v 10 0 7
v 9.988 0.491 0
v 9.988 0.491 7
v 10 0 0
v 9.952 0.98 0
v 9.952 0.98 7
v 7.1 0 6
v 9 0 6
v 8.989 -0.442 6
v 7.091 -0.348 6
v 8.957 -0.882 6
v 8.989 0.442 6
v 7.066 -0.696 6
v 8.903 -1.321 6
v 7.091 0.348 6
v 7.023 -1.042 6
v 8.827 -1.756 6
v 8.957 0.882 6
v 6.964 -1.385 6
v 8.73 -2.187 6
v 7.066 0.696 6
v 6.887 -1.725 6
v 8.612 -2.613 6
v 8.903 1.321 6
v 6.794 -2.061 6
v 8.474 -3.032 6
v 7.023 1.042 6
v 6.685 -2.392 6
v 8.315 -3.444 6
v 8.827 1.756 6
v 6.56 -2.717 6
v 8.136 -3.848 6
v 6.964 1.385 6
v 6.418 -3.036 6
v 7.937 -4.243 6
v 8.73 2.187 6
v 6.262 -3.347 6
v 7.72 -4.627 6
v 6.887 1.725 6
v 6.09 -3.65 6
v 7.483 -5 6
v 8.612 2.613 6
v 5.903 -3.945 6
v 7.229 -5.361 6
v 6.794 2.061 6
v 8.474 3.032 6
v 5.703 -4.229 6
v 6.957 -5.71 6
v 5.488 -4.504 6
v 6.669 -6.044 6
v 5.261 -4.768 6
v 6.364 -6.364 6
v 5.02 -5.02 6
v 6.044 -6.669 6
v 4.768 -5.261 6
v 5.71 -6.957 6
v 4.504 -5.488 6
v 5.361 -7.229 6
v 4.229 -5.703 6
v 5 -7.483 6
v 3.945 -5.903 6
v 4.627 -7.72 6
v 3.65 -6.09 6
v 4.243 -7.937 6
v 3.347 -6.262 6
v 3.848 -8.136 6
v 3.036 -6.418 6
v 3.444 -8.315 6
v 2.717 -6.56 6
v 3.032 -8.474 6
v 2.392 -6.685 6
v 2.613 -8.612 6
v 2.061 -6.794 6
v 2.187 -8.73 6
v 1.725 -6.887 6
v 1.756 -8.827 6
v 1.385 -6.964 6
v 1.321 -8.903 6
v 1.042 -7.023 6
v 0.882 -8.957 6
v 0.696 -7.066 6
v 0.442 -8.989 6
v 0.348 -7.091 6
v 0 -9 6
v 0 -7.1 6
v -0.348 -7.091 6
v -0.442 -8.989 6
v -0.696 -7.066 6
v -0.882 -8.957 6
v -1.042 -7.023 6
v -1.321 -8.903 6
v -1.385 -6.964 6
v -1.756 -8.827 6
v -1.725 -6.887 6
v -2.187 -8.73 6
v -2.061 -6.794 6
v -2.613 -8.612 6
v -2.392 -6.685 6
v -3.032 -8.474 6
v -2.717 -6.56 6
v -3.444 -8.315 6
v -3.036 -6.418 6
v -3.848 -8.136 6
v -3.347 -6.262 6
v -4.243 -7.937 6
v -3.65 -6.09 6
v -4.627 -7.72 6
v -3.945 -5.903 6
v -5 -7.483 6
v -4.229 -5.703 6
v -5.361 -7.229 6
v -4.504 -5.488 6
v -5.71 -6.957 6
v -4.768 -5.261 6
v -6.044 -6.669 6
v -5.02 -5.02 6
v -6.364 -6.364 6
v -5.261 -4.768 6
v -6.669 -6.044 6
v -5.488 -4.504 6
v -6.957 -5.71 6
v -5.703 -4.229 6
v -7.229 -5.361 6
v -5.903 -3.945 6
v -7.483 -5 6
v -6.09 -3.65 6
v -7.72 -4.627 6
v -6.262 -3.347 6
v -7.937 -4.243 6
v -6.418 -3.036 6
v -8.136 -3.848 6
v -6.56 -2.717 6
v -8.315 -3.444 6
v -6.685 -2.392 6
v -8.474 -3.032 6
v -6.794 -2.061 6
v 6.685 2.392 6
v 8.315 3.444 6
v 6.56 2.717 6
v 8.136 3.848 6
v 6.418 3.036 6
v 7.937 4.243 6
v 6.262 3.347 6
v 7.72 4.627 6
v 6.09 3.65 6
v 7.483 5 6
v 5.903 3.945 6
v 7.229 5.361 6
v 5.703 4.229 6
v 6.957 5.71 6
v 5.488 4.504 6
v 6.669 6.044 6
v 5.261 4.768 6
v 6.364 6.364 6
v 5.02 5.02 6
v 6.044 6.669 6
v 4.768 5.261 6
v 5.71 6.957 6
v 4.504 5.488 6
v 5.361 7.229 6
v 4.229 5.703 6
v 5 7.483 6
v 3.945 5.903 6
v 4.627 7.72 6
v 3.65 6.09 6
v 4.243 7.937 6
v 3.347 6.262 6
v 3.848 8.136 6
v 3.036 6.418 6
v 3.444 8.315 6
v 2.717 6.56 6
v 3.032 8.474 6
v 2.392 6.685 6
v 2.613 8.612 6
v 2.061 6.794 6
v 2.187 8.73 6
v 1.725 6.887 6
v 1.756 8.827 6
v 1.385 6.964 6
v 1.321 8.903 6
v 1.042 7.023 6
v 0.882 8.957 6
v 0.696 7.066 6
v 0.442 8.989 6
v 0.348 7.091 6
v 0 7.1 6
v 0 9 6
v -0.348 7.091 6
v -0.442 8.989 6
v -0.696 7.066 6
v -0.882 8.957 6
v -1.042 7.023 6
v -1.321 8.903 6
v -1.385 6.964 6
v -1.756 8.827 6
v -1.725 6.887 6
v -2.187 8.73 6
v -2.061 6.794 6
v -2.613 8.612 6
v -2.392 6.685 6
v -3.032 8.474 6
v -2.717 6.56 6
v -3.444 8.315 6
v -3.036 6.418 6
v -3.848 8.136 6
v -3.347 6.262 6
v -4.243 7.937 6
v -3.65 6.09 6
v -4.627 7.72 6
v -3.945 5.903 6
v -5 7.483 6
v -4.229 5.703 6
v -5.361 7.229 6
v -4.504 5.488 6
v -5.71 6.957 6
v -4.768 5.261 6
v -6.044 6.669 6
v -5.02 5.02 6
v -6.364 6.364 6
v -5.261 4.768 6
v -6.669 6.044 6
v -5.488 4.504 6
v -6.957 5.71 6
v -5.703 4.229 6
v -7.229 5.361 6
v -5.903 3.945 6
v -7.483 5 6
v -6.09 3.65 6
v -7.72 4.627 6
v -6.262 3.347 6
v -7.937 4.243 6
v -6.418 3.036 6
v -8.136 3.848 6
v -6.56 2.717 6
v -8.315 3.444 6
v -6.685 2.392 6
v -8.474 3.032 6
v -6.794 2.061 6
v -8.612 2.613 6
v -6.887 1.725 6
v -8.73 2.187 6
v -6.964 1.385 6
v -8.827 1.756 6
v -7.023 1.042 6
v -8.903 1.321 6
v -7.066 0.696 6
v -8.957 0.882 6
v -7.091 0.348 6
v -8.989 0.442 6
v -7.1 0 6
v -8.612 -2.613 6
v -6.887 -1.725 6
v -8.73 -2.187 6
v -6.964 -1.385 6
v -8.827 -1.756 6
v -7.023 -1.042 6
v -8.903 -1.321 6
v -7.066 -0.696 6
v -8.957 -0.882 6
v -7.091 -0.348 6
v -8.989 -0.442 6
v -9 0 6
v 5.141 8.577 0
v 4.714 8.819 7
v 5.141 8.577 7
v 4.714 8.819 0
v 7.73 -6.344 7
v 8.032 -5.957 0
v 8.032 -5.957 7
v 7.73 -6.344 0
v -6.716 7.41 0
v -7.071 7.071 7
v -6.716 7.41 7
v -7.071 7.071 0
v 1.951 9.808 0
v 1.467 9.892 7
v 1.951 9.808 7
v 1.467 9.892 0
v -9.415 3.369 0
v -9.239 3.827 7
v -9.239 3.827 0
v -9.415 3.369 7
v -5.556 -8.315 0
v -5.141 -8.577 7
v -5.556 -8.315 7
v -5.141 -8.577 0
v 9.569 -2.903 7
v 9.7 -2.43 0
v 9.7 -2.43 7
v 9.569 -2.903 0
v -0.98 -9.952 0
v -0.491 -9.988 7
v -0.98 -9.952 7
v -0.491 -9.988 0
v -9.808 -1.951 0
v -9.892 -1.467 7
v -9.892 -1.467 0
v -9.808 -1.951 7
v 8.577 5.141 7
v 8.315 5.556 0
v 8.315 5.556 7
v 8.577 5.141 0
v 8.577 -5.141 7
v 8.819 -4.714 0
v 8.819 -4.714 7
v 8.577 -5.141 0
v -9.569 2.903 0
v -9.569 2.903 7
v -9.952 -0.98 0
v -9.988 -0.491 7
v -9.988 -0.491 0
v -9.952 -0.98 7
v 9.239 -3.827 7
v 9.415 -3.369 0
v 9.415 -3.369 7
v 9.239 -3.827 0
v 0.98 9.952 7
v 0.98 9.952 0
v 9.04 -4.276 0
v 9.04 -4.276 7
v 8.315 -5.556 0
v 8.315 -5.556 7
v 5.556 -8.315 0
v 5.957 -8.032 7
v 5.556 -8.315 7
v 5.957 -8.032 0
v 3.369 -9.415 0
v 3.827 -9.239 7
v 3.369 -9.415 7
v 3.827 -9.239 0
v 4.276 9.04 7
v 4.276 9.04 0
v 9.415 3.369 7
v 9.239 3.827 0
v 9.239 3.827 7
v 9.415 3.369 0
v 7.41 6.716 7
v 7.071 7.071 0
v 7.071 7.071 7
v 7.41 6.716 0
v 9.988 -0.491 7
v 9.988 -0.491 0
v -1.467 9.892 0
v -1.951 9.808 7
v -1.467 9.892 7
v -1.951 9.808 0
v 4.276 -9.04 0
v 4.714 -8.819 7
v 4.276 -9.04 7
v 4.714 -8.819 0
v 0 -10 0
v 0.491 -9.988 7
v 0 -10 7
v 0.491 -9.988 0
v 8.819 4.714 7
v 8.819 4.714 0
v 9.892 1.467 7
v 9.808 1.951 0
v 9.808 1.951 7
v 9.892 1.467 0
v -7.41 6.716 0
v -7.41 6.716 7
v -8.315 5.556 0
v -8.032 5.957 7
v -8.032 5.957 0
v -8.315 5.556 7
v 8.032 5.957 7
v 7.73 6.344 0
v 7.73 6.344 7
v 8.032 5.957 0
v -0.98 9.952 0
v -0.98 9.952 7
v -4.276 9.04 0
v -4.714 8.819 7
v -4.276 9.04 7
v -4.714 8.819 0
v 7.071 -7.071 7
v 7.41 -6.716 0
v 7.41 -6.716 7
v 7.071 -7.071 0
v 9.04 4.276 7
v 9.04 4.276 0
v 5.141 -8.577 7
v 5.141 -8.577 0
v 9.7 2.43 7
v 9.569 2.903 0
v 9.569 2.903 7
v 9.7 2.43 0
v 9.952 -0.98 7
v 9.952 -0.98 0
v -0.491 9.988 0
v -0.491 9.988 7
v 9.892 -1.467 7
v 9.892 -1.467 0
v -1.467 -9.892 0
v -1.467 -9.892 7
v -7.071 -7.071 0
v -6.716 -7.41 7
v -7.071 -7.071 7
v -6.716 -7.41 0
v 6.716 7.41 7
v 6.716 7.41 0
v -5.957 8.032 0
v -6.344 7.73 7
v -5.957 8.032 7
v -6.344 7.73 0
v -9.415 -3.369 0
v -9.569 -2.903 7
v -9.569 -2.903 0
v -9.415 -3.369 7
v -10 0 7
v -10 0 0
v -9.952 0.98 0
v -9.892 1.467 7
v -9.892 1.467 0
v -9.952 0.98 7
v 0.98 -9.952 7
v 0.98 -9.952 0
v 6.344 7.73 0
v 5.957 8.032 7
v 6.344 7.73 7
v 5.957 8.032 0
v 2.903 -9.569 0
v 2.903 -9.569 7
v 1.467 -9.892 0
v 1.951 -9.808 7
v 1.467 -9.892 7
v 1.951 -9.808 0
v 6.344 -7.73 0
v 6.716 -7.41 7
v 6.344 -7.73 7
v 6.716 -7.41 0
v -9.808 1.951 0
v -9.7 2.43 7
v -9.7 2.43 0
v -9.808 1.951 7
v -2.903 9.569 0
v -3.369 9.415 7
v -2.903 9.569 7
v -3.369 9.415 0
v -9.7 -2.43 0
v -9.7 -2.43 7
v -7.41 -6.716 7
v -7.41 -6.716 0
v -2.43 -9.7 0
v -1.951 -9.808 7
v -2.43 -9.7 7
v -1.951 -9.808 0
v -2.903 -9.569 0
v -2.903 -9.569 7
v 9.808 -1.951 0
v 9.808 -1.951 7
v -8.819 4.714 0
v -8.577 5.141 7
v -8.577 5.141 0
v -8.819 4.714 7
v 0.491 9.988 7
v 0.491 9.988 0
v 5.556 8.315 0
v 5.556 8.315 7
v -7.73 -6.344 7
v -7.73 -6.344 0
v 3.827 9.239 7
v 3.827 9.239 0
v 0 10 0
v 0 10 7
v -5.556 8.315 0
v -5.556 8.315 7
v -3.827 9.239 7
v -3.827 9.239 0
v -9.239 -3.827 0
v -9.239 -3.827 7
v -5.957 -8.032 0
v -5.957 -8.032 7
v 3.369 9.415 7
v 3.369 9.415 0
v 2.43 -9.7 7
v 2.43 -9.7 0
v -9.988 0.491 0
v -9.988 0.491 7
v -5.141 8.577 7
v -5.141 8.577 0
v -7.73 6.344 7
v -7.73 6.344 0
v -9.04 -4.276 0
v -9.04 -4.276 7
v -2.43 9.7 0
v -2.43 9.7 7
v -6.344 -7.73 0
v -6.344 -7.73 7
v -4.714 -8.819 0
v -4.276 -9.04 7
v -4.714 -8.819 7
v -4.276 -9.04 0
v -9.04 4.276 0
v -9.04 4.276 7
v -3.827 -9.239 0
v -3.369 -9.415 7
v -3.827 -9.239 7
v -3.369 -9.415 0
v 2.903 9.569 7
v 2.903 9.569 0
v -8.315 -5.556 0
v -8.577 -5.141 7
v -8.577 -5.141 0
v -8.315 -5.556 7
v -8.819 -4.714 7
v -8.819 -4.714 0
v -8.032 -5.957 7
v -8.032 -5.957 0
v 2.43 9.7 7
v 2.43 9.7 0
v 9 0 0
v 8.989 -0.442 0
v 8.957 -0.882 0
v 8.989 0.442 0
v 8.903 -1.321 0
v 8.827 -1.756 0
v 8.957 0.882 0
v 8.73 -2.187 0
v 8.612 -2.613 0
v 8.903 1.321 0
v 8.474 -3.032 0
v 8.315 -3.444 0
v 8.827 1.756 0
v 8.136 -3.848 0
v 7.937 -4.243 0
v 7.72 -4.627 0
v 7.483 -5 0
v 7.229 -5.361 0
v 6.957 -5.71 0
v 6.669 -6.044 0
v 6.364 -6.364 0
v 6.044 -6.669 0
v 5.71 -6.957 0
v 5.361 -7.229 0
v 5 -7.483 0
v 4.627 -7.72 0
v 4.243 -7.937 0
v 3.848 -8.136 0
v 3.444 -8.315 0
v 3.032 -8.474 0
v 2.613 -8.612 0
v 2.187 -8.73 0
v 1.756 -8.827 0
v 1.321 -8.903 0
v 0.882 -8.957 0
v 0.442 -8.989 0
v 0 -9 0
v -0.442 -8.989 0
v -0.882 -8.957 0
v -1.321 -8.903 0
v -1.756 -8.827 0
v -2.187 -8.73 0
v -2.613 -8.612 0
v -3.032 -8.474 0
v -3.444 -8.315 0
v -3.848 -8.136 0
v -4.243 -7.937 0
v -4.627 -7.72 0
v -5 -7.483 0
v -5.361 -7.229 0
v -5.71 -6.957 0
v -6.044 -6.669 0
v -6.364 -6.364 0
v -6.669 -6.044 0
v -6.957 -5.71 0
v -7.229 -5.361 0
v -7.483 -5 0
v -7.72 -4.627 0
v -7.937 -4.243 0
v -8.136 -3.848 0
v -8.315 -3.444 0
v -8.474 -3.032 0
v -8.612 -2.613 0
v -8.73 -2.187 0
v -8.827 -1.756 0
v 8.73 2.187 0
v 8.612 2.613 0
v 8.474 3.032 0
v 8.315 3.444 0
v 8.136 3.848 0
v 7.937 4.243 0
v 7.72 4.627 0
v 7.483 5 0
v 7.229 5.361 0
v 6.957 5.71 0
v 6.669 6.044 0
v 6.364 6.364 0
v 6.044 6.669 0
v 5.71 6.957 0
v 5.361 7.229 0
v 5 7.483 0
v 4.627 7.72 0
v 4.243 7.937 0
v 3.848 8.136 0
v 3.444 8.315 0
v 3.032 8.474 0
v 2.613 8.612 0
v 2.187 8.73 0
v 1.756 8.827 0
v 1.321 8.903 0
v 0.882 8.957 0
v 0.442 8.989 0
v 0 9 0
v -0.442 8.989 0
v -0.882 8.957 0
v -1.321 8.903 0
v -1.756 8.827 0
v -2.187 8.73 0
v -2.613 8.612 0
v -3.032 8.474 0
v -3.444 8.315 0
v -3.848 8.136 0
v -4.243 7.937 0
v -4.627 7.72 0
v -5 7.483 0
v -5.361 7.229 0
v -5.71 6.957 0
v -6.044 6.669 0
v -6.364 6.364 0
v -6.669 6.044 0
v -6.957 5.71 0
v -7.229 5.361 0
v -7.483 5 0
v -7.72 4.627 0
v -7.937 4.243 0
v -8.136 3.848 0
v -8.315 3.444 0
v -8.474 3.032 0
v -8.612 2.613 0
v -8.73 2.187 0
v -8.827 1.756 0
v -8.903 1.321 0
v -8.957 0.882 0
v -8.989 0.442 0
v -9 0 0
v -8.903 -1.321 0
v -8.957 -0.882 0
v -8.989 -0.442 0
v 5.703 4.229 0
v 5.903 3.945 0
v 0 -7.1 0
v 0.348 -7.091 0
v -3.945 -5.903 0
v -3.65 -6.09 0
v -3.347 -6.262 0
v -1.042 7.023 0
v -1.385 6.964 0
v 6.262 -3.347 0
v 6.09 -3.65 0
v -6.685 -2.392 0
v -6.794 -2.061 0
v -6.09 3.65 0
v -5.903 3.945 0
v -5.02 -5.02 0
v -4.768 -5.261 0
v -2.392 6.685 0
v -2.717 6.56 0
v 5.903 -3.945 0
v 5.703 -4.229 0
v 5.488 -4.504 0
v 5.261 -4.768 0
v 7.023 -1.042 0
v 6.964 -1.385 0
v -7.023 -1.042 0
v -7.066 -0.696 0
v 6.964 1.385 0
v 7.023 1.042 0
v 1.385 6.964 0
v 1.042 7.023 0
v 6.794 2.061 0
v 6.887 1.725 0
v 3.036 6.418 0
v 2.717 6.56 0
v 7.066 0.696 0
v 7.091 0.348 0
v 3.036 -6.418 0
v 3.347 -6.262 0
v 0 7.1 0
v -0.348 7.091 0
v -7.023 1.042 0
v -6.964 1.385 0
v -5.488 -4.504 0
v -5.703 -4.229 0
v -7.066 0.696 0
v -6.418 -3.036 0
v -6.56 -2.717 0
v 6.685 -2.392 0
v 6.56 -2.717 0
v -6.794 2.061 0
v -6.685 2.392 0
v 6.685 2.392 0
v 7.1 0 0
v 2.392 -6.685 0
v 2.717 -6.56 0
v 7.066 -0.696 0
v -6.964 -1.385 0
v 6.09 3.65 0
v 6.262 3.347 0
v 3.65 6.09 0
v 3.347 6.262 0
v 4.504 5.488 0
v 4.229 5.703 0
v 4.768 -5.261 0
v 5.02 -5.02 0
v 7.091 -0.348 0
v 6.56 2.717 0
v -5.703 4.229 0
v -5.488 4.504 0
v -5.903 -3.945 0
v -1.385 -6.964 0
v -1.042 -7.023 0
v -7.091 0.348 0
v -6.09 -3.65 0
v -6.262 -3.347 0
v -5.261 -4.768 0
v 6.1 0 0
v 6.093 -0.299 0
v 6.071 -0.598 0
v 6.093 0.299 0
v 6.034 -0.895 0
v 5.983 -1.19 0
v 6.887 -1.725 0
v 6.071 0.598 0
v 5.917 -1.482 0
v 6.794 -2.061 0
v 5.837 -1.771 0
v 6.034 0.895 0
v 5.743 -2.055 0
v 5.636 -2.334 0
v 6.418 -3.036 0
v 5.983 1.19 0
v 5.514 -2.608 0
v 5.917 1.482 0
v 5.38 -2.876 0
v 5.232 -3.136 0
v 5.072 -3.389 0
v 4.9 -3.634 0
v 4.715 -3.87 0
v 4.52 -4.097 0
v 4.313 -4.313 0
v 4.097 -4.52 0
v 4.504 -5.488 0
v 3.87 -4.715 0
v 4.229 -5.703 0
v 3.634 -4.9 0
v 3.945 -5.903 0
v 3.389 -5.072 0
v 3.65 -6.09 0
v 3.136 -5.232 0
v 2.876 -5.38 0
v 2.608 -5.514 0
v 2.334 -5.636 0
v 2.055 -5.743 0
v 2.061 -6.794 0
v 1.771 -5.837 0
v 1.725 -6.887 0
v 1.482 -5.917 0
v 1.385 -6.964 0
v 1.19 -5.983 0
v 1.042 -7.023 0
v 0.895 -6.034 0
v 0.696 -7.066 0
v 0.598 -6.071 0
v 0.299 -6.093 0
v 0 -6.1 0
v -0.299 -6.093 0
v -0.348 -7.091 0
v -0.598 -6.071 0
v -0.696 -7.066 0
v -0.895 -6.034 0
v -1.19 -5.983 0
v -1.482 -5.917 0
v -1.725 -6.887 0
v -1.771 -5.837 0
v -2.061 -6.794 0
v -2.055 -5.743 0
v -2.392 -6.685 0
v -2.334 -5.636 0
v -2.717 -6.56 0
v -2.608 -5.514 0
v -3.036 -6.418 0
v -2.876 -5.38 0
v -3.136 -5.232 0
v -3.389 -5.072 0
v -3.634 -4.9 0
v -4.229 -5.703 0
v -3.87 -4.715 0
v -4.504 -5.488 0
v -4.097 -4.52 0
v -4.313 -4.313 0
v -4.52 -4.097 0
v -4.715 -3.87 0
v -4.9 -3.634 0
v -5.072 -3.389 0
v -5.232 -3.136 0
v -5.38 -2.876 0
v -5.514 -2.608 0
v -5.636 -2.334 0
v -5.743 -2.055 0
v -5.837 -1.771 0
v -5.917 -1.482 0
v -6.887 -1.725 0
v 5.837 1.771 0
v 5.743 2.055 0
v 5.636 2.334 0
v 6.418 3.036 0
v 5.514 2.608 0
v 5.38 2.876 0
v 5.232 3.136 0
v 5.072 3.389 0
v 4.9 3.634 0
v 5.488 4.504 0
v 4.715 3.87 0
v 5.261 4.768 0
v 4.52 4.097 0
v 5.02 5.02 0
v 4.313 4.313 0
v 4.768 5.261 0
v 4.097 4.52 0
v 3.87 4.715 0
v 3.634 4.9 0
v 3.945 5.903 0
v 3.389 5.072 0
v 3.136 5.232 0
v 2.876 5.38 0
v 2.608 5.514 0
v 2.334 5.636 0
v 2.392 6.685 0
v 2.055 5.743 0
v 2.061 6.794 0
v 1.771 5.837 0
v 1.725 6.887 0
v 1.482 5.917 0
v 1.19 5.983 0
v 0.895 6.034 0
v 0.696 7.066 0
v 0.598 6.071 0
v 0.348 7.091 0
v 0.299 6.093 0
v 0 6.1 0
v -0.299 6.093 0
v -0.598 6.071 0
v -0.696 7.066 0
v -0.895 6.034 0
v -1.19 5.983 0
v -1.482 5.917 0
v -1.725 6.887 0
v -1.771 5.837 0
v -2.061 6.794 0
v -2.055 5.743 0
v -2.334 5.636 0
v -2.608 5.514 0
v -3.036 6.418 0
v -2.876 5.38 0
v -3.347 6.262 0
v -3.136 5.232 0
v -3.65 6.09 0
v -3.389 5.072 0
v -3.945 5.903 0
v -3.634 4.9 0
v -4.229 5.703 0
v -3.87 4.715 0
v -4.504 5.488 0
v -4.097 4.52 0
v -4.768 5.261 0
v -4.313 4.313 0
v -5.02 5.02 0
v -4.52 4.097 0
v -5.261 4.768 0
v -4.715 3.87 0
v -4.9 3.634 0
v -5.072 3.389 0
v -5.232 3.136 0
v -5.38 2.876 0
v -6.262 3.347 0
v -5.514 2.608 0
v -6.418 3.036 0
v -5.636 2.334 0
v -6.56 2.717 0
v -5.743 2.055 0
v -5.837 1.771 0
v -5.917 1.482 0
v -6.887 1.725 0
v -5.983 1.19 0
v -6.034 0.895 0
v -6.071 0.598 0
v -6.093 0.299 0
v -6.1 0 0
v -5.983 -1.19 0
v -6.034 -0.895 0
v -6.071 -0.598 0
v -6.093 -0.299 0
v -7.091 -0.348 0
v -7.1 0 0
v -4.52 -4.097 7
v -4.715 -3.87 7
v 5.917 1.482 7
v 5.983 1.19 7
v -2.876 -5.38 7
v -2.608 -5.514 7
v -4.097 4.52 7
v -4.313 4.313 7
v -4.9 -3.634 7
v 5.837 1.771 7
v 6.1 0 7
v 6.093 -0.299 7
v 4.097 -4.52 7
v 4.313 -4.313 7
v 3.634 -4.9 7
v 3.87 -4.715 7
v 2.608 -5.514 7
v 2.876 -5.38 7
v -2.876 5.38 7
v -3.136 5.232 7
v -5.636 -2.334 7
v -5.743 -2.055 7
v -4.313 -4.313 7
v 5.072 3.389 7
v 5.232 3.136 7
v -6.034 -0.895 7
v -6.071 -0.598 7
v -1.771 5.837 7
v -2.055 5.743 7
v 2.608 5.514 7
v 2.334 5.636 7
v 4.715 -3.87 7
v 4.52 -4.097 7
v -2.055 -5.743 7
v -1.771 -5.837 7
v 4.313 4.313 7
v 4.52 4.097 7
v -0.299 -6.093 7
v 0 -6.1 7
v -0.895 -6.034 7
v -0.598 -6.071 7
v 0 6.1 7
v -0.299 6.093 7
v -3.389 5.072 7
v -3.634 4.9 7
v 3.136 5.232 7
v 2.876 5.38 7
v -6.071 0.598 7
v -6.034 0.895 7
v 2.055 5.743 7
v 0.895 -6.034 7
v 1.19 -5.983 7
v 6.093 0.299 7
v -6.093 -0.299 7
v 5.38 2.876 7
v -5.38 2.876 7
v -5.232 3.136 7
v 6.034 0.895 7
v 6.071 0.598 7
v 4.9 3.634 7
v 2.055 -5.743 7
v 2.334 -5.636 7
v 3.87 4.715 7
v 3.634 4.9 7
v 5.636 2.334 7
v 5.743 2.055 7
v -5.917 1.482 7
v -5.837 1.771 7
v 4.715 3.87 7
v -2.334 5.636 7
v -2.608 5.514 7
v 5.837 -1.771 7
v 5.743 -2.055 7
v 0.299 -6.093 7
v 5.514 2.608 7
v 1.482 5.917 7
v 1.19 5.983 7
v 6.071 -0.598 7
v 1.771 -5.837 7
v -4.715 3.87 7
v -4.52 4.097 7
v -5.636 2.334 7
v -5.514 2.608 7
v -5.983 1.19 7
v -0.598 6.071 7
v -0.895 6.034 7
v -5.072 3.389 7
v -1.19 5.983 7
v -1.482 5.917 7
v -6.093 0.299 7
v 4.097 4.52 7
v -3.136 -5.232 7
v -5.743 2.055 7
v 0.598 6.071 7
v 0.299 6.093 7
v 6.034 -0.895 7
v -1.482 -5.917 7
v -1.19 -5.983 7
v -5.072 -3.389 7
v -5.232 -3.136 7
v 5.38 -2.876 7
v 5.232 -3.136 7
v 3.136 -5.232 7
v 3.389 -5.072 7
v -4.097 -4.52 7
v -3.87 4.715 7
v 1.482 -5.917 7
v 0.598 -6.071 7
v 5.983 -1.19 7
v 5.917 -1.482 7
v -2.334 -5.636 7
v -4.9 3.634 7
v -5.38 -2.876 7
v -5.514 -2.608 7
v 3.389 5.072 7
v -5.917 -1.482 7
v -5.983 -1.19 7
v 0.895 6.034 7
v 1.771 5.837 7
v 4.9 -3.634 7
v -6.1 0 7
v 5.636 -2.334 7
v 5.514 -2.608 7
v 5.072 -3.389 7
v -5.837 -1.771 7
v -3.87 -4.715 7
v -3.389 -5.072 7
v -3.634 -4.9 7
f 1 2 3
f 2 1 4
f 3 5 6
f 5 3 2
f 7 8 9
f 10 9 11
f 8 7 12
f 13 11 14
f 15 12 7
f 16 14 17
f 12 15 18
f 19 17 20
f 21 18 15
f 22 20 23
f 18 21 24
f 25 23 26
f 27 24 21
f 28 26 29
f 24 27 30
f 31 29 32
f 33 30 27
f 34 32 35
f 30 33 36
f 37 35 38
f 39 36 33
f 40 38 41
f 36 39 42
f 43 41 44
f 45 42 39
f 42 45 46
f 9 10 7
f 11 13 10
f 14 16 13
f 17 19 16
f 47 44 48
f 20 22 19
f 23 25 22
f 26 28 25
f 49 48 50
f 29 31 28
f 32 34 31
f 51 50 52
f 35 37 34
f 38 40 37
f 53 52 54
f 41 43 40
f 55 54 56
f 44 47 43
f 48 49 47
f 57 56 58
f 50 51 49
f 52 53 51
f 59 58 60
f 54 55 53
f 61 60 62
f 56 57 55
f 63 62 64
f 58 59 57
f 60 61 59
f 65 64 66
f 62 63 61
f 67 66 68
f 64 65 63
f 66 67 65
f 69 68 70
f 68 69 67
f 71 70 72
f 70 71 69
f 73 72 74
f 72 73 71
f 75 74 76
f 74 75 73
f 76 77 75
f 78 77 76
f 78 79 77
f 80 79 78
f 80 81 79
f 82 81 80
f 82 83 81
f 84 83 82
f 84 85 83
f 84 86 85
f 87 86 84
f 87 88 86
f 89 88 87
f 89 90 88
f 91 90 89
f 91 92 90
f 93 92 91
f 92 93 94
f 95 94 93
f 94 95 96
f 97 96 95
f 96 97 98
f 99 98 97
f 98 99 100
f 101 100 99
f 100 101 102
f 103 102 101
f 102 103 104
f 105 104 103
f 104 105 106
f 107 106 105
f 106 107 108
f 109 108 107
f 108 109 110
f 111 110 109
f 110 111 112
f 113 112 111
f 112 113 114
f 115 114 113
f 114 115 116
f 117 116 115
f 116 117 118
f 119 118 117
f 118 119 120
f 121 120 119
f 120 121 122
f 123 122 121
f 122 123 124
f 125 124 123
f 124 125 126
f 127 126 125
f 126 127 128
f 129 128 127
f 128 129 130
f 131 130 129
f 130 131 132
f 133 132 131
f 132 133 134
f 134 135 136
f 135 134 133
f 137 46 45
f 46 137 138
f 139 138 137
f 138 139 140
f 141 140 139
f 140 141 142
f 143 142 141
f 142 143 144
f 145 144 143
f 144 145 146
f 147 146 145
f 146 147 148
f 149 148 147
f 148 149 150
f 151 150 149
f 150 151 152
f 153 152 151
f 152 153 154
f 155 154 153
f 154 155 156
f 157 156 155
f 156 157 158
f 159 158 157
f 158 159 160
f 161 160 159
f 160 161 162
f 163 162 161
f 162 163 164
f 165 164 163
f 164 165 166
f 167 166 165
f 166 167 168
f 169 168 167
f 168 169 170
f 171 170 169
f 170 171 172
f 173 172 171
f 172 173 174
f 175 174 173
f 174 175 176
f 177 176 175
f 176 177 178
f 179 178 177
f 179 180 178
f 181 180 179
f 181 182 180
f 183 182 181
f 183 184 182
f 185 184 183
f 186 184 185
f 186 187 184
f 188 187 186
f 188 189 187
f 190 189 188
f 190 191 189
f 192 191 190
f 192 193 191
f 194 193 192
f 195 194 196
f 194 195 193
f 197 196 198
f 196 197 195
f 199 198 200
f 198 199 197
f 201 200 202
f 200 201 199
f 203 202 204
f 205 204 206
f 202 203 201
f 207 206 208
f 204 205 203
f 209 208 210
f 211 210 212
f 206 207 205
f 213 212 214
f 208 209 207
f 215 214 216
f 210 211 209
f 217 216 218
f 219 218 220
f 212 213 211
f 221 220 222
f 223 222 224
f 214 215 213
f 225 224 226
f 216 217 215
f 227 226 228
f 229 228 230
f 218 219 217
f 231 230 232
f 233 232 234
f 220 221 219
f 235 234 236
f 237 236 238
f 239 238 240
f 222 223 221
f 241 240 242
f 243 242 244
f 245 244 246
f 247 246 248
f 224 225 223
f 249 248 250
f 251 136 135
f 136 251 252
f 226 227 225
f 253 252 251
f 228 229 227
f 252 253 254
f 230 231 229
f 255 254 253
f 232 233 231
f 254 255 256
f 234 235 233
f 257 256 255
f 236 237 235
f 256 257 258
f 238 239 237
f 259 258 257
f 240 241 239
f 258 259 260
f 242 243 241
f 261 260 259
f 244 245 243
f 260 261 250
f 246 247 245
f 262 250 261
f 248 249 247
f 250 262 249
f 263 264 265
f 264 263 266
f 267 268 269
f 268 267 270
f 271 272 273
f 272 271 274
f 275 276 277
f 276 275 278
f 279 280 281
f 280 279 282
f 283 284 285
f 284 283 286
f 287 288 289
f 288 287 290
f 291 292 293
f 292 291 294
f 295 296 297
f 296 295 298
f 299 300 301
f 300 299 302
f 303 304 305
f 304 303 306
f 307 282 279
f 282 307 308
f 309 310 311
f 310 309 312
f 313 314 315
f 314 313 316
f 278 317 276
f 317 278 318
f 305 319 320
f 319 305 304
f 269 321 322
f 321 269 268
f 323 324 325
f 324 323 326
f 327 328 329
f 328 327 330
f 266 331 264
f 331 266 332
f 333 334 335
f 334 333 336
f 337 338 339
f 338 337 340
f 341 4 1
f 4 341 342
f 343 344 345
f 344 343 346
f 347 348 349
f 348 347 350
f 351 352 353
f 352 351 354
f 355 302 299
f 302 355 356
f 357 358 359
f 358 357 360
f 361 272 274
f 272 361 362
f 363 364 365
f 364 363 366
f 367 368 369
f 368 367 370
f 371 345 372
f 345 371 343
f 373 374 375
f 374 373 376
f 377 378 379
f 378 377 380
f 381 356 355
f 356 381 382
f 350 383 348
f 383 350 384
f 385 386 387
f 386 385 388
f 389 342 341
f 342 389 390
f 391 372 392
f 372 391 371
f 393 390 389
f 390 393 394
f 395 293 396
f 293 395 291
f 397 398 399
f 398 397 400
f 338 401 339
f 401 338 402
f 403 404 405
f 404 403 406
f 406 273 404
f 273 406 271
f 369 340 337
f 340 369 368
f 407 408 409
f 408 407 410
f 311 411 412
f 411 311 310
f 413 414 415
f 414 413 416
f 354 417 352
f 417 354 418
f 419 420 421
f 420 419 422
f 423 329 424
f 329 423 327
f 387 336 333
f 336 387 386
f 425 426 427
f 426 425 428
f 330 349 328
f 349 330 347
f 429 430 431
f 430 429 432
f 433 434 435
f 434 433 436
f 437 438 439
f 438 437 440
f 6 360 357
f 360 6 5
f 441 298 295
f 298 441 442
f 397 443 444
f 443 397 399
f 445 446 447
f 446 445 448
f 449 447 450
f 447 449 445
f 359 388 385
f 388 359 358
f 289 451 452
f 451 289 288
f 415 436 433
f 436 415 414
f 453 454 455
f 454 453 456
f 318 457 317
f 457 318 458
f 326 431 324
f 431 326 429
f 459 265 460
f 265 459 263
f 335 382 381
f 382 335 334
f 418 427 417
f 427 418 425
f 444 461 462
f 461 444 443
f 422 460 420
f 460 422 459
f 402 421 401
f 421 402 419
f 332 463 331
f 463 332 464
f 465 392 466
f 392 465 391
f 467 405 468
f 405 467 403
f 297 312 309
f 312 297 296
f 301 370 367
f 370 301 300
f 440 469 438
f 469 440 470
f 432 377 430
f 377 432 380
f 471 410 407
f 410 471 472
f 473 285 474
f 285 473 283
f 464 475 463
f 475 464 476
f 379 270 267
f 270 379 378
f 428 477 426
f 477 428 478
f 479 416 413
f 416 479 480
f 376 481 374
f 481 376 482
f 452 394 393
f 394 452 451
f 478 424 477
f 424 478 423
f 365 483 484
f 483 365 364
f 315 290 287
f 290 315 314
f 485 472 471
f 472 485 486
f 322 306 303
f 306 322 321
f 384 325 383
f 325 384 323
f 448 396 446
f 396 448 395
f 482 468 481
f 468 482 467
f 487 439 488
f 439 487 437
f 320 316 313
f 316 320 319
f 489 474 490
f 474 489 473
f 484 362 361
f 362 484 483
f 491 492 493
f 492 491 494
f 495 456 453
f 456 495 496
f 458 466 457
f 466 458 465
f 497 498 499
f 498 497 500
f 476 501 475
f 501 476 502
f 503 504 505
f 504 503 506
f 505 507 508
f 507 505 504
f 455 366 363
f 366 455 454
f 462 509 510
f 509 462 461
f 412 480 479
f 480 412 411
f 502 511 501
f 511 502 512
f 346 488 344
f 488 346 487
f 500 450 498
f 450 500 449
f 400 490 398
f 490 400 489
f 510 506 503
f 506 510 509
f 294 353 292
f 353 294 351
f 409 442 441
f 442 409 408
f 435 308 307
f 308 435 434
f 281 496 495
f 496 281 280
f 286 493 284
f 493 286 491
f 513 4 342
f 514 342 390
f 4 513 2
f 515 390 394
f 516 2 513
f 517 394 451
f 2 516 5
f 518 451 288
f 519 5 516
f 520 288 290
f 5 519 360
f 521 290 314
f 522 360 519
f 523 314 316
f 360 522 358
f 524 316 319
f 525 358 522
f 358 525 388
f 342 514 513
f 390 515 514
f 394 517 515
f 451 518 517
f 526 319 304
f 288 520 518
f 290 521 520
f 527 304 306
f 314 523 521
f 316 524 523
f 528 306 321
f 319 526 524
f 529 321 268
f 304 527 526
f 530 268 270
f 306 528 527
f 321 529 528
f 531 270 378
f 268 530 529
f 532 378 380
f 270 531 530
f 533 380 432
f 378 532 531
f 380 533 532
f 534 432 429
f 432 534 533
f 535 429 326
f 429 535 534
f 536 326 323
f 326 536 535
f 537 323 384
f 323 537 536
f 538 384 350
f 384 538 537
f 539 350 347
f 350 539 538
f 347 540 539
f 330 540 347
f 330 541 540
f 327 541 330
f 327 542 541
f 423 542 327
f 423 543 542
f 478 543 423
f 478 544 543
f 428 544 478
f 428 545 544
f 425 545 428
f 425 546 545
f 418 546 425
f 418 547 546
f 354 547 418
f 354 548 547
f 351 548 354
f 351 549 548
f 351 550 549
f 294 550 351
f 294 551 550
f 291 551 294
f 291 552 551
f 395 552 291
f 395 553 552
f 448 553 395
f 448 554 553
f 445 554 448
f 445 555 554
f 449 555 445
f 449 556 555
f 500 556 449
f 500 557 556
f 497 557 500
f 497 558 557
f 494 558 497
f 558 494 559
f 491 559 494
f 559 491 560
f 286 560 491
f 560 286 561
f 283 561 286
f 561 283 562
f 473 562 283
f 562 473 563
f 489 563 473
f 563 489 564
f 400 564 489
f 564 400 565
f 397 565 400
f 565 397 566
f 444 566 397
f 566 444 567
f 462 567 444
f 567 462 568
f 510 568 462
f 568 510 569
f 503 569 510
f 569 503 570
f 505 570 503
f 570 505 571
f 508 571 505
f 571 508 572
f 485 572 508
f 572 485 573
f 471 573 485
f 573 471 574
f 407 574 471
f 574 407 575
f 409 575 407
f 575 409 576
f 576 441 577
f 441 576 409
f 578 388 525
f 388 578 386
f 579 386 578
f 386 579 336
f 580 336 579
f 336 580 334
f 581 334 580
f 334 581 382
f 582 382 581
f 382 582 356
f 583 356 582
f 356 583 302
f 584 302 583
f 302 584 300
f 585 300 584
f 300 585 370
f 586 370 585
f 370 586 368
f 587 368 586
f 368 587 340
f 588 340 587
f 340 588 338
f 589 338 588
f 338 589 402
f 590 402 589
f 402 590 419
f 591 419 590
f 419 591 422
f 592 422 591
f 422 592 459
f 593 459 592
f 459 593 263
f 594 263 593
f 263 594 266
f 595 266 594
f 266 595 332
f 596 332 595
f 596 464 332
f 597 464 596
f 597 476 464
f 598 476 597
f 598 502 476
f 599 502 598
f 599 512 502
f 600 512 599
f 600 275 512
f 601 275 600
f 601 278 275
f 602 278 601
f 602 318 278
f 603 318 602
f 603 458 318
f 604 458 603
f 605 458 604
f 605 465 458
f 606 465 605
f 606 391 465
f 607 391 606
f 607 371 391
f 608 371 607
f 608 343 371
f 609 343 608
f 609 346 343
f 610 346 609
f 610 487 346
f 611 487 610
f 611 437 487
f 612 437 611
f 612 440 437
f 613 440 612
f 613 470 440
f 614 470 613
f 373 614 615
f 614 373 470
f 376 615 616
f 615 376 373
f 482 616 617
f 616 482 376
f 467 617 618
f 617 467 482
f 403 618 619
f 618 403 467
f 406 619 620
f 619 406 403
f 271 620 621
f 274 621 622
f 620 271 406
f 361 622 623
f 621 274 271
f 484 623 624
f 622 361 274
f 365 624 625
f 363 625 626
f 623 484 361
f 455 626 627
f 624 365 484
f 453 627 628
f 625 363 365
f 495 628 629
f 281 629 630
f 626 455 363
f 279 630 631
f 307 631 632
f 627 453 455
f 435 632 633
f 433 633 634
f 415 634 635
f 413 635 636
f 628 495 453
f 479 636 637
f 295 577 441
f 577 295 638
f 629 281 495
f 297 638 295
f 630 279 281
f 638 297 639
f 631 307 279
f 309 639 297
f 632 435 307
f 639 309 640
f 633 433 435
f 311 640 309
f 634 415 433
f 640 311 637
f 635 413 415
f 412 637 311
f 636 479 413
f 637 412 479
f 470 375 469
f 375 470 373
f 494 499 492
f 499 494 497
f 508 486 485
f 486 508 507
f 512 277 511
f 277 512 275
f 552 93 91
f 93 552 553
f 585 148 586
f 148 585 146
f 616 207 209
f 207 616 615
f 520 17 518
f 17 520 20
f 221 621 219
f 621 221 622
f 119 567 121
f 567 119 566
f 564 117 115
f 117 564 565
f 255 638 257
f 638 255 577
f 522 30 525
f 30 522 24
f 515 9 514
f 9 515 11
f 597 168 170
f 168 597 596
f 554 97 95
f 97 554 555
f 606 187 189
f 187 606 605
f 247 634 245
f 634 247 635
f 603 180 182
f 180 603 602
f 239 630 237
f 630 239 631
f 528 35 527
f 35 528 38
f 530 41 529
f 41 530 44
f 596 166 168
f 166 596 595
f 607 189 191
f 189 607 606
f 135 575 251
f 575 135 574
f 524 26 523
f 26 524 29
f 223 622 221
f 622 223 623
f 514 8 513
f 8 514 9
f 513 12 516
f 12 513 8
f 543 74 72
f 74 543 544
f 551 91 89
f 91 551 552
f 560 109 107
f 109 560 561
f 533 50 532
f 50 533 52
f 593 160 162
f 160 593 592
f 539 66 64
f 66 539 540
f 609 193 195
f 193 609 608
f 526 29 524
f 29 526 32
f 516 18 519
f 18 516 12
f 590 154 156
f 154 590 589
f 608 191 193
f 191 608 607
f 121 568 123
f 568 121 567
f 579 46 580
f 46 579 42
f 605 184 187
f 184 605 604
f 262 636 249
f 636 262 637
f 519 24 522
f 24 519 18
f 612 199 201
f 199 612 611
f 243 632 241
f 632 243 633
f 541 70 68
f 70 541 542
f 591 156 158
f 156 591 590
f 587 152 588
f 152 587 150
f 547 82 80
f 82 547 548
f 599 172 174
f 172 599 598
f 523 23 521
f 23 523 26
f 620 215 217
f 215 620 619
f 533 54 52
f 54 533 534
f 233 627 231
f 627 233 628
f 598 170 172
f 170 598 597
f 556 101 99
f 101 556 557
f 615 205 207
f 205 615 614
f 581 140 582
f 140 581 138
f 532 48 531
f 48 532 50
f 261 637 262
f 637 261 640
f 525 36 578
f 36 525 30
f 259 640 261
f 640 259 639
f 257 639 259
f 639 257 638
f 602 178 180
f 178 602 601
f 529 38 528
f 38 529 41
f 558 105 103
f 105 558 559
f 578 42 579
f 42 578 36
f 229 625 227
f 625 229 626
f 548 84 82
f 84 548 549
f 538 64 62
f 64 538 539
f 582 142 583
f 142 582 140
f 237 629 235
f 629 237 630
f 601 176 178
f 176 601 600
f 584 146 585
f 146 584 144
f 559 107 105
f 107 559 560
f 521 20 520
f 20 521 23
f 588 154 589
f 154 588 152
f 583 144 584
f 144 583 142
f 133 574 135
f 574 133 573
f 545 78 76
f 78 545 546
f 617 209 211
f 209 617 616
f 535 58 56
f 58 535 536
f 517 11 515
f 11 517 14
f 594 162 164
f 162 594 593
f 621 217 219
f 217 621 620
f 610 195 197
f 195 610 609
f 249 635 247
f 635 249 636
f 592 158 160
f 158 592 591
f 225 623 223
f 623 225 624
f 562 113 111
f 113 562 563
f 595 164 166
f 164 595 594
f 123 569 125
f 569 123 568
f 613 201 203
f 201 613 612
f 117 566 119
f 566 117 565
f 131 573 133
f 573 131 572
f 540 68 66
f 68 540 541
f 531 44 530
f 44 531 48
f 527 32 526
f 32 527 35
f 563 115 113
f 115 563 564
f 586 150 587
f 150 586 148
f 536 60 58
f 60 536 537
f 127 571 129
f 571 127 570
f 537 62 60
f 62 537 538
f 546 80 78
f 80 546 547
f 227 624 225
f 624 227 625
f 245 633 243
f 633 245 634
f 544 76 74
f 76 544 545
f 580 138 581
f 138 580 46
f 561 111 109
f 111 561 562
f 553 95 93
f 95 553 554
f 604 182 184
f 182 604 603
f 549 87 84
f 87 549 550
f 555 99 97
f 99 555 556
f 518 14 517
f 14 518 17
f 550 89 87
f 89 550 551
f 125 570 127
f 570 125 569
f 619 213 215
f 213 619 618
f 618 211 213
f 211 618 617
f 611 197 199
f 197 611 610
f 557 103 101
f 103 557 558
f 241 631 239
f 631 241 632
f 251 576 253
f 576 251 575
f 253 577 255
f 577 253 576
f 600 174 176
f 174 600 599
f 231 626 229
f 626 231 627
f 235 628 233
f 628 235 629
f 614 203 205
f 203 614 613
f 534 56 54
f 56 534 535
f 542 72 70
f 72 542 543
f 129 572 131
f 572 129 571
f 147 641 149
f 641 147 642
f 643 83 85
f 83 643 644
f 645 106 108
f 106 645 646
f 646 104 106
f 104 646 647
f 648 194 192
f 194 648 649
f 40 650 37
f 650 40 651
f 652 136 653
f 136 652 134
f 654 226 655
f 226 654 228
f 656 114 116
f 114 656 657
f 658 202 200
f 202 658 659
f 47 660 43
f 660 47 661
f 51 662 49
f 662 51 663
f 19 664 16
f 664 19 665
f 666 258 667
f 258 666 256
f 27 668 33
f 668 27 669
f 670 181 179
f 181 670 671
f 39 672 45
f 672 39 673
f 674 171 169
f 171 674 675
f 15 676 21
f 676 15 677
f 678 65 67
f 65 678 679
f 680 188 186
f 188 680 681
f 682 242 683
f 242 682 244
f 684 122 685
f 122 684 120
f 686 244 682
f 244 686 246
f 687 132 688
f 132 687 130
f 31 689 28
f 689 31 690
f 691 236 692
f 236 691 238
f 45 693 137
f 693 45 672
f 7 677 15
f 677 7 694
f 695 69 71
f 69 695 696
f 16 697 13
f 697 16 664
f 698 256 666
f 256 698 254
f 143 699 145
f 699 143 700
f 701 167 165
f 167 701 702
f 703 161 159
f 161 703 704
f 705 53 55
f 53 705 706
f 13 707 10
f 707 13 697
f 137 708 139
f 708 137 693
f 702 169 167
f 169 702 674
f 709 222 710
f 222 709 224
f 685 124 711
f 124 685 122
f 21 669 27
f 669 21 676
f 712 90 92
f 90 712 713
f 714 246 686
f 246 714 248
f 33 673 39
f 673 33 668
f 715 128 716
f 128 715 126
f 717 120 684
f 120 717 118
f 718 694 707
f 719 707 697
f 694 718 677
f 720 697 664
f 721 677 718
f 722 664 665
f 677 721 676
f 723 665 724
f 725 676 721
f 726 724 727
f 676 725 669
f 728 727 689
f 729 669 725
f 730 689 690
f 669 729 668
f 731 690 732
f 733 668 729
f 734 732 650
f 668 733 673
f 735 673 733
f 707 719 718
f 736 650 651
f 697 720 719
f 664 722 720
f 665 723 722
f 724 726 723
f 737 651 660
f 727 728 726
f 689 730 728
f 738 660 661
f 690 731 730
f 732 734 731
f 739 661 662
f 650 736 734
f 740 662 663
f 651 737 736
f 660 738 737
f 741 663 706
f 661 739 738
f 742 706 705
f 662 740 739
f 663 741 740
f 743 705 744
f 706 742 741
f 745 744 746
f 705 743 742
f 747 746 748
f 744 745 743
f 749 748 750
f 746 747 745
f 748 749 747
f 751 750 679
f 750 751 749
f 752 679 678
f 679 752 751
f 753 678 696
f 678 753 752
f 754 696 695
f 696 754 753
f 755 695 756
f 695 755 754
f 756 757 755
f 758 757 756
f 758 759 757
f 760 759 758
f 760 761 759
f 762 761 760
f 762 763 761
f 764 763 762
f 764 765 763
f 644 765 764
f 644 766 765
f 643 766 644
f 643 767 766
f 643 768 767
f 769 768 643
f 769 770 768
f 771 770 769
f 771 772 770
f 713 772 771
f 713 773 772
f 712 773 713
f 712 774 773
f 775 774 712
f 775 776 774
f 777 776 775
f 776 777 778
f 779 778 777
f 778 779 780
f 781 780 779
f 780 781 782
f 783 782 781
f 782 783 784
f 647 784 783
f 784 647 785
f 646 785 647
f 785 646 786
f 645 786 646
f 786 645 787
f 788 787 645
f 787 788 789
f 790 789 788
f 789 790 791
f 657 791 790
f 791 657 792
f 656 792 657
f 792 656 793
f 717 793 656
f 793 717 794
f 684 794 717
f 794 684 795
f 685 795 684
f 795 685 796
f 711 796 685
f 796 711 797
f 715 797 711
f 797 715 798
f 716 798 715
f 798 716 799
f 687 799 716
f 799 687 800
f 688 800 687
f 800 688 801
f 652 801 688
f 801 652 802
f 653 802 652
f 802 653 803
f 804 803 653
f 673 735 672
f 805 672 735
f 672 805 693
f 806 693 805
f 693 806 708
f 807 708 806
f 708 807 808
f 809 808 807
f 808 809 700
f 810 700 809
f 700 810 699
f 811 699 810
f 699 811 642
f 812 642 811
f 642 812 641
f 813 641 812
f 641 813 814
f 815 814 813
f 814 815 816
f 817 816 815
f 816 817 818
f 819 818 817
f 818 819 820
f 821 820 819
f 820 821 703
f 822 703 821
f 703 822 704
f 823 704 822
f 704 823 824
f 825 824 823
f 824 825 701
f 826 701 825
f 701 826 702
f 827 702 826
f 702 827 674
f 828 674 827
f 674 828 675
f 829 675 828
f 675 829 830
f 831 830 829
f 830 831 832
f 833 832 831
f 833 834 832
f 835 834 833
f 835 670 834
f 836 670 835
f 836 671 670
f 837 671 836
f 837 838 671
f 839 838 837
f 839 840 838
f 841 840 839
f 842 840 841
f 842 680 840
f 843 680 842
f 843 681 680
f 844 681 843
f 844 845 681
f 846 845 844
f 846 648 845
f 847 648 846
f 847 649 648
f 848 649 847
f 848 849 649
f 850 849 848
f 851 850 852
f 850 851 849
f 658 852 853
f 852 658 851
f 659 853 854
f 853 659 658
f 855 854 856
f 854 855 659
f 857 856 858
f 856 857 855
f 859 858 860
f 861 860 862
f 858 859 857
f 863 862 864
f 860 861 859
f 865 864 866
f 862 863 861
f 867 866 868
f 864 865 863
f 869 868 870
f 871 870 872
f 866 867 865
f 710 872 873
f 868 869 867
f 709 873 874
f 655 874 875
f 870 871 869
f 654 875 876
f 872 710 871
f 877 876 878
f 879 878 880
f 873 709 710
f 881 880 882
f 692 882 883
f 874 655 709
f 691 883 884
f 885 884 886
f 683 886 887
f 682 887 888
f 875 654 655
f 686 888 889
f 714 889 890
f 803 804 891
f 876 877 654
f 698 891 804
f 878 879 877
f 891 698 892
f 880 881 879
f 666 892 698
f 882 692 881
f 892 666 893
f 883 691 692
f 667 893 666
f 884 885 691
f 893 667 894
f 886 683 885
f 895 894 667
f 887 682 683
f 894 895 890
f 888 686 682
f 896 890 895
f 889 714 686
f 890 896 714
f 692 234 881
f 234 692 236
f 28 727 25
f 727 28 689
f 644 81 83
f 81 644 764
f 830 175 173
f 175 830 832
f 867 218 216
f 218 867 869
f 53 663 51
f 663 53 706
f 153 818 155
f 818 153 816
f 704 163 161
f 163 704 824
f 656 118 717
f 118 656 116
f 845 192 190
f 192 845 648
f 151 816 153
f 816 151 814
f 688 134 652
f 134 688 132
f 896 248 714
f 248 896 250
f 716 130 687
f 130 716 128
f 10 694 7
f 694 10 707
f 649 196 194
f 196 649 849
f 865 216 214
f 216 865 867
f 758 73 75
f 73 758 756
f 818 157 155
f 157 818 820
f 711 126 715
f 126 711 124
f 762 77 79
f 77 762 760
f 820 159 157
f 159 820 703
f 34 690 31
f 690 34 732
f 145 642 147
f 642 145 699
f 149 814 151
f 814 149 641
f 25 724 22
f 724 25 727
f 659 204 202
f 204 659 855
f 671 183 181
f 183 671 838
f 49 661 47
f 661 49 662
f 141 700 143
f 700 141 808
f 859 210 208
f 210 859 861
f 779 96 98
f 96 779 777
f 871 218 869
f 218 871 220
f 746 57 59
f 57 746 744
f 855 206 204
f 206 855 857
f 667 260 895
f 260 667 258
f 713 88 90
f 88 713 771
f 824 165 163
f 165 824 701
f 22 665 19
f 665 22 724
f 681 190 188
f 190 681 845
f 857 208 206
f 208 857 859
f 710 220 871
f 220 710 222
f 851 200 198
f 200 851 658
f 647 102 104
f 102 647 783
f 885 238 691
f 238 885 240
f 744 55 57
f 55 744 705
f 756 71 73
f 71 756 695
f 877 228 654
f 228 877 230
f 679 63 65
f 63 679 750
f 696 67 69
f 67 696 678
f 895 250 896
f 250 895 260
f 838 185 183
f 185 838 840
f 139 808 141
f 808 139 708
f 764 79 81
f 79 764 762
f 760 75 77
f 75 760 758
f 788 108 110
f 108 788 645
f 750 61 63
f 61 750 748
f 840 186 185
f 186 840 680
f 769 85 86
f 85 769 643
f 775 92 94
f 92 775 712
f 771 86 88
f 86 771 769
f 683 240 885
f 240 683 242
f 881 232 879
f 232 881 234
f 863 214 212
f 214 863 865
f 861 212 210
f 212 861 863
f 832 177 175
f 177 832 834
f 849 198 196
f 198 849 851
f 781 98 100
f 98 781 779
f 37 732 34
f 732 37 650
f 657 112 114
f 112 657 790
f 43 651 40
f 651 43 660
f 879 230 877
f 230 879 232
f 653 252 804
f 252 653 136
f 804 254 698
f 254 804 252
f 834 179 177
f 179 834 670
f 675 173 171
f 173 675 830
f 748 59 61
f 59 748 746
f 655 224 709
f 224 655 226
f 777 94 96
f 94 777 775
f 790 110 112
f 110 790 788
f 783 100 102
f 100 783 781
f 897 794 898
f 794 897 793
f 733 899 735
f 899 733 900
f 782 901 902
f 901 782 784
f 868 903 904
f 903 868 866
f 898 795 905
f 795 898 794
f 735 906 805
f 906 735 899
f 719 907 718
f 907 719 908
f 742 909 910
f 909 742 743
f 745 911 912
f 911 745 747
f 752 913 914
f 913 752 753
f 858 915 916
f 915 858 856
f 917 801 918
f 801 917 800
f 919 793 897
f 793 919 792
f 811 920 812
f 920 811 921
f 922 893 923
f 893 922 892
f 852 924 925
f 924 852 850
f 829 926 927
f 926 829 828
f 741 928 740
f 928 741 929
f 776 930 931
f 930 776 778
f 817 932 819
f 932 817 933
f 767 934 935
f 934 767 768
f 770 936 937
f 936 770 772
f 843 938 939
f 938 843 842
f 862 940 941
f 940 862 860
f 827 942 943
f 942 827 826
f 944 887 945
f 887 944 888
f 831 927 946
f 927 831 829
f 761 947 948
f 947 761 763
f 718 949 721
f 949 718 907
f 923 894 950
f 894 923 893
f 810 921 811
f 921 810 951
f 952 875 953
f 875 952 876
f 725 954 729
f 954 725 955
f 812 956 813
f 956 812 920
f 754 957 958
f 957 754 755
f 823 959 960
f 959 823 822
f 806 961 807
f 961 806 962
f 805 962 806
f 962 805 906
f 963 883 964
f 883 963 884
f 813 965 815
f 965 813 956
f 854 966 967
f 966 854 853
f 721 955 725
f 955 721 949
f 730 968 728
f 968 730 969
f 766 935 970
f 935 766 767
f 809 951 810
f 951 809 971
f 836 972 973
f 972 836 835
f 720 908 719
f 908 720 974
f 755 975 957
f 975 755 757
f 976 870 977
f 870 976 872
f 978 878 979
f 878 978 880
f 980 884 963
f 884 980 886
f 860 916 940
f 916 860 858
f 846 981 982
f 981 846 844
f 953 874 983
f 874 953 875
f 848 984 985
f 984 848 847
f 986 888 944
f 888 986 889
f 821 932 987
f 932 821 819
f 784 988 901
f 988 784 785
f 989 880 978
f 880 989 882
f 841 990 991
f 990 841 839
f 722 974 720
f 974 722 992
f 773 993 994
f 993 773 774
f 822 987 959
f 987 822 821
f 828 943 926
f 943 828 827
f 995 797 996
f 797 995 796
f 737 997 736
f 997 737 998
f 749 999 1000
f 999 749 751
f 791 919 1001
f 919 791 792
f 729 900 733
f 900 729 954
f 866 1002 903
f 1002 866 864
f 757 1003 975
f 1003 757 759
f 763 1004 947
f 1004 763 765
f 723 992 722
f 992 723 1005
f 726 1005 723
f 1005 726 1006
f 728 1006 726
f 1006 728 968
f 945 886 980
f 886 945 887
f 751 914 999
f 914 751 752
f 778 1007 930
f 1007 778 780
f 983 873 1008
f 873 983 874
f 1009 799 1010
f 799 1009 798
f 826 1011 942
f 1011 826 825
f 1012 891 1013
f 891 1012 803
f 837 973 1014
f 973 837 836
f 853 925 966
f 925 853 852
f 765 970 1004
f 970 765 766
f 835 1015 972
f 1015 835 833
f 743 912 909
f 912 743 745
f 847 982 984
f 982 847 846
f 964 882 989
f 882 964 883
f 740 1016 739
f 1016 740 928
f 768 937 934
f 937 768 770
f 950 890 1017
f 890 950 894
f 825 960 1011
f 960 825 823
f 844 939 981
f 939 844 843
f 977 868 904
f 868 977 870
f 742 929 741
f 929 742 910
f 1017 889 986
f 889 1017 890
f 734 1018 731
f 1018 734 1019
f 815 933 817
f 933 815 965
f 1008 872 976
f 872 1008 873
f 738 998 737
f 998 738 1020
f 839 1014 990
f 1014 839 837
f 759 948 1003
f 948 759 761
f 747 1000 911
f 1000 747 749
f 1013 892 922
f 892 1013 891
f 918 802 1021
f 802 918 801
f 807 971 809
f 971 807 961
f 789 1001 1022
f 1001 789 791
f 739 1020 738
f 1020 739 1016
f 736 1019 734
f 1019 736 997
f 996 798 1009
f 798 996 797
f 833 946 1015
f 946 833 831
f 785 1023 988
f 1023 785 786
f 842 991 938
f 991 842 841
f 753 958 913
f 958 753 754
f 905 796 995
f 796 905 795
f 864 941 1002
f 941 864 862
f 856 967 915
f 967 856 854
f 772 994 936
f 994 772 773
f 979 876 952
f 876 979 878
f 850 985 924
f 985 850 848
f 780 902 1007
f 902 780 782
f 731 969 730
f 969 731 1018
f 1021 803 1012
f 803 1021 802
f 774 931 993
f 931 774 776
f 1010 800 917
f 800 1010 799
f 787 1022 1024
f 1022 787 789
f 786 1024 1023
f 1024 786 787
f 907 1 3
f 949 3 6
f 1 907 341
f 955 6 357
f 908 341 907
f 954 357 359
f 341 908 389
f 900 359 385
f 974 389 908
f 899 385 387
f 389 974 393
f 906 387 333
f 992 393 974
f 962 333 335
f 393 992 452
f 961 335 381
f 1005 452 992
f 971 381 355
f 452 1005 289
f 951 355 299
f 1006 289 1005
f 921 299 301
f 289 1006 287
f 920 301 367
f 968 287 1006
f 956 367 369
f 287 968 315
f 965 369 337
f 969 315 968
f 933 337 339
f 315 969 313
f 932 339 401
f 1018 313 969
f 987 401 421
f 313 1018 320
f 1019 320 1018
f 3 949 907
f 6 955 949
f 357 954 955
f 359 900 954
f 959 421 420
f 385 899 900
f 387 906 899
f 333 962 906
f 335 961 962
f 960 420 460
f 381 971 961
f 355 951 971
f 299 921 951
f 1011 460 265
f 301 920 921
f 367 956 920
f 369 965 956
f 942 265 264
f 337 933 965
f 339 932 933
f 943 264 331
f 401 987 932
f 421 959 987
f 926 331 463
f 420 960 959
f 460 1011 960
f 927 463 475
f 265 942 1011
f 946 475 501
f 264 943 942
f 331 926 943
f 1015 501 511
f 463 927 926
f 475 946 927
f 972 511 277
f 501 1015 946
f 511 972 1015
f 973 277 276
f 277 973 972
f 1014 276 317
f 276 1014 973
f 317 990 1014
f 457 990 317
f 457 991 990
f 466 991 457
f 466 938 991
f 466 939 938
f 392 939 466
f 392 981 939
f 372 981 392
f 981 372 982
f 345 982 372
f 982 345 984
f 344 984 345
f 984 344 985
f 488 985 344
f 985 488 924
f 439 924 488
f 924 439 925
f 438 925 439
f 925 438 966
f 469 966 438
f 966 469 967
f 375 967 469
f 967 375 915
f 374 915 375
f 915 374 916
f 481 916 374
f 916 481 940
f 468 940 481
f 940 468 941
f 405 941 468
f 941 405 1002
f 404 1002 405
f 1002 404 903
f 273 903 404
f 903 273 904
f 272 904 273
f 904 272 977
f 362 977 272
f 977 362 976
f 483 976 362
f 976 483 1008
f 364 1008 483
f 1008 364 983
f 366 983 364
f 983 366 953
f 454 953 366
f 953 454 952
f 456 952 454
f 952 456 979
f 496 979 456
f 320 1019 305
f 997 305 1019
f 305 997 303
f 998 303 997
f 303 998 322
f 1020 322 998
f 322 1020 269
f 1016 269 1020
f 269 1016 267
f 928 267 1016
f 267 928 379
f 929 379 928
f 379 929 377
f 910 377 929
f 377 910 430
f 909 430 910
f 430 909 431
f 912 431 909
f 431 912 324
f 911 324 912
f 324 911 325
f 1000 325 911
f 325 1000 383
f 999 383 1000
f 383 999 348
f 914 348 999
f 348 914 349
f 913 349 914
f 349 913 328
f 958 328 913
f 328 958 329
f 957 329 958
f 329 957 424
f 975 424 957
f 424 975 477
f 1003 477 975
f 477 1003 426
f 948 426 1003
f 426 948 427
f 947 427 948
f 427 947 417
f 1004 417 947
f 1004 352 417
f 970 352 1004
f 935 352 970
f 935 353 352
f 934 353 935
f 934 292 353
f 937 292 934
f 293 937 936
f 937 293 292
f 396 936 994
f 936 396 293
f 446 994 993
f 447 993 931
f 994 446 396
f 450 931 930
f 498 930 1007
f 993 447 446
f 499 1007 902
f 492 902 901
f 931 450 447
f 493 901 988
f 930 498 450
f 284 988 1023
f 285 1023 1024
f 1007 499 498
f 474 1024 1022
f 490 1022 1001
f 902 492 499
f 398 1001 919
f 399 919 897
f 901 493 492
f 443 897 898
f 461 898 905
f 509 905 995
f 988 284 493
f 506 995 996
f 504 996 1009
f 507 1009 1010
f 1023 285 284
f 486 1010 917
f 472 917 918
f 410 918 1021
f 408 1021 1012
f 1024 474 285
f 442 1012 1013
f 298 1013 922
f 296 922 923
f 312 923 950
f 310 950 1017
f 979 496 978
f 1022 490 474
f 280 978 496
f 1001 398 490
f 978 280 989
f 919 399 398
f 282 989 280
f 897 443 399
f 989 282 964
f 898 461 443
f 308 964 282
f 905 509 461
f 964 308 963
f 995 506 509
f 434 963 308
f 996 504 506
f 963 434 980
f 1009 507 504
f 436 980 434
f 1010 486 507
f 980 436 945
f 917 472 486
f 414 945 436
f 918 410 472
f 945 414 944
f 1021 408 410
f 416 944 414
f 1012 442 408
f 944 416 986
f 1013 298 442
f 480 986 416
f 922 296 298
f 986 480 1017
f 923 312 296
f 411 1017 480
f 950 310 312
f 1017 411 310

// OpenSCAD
$fn=128;

or=9;
ir=7.1;
ih=6;
t=1;


// translate([-50,0,-202]) {
//     import("Barrel1.stl");
//     mirror([0,1,0]) import("Barrel1.stl");
// }

color("#FF6700") union() {
    difference() {
        cylinder(r=or+t,h=ih);
        translate([0,0,-0.5]) cylinder(r=or,h=ih+1);
    }

    difference() {
        cylinder(r=ir,h=ih);
        translate([0,0,-0.5]) cylinder(r=ir-t,h=ih+1);
    }
    
    translate([0,0,ih]) difference() {
        cylinder(r=or+t,h=t);
        translate([0,0,-0.5]) cylinder(r=ir-t,h=t+1);
    }
}
